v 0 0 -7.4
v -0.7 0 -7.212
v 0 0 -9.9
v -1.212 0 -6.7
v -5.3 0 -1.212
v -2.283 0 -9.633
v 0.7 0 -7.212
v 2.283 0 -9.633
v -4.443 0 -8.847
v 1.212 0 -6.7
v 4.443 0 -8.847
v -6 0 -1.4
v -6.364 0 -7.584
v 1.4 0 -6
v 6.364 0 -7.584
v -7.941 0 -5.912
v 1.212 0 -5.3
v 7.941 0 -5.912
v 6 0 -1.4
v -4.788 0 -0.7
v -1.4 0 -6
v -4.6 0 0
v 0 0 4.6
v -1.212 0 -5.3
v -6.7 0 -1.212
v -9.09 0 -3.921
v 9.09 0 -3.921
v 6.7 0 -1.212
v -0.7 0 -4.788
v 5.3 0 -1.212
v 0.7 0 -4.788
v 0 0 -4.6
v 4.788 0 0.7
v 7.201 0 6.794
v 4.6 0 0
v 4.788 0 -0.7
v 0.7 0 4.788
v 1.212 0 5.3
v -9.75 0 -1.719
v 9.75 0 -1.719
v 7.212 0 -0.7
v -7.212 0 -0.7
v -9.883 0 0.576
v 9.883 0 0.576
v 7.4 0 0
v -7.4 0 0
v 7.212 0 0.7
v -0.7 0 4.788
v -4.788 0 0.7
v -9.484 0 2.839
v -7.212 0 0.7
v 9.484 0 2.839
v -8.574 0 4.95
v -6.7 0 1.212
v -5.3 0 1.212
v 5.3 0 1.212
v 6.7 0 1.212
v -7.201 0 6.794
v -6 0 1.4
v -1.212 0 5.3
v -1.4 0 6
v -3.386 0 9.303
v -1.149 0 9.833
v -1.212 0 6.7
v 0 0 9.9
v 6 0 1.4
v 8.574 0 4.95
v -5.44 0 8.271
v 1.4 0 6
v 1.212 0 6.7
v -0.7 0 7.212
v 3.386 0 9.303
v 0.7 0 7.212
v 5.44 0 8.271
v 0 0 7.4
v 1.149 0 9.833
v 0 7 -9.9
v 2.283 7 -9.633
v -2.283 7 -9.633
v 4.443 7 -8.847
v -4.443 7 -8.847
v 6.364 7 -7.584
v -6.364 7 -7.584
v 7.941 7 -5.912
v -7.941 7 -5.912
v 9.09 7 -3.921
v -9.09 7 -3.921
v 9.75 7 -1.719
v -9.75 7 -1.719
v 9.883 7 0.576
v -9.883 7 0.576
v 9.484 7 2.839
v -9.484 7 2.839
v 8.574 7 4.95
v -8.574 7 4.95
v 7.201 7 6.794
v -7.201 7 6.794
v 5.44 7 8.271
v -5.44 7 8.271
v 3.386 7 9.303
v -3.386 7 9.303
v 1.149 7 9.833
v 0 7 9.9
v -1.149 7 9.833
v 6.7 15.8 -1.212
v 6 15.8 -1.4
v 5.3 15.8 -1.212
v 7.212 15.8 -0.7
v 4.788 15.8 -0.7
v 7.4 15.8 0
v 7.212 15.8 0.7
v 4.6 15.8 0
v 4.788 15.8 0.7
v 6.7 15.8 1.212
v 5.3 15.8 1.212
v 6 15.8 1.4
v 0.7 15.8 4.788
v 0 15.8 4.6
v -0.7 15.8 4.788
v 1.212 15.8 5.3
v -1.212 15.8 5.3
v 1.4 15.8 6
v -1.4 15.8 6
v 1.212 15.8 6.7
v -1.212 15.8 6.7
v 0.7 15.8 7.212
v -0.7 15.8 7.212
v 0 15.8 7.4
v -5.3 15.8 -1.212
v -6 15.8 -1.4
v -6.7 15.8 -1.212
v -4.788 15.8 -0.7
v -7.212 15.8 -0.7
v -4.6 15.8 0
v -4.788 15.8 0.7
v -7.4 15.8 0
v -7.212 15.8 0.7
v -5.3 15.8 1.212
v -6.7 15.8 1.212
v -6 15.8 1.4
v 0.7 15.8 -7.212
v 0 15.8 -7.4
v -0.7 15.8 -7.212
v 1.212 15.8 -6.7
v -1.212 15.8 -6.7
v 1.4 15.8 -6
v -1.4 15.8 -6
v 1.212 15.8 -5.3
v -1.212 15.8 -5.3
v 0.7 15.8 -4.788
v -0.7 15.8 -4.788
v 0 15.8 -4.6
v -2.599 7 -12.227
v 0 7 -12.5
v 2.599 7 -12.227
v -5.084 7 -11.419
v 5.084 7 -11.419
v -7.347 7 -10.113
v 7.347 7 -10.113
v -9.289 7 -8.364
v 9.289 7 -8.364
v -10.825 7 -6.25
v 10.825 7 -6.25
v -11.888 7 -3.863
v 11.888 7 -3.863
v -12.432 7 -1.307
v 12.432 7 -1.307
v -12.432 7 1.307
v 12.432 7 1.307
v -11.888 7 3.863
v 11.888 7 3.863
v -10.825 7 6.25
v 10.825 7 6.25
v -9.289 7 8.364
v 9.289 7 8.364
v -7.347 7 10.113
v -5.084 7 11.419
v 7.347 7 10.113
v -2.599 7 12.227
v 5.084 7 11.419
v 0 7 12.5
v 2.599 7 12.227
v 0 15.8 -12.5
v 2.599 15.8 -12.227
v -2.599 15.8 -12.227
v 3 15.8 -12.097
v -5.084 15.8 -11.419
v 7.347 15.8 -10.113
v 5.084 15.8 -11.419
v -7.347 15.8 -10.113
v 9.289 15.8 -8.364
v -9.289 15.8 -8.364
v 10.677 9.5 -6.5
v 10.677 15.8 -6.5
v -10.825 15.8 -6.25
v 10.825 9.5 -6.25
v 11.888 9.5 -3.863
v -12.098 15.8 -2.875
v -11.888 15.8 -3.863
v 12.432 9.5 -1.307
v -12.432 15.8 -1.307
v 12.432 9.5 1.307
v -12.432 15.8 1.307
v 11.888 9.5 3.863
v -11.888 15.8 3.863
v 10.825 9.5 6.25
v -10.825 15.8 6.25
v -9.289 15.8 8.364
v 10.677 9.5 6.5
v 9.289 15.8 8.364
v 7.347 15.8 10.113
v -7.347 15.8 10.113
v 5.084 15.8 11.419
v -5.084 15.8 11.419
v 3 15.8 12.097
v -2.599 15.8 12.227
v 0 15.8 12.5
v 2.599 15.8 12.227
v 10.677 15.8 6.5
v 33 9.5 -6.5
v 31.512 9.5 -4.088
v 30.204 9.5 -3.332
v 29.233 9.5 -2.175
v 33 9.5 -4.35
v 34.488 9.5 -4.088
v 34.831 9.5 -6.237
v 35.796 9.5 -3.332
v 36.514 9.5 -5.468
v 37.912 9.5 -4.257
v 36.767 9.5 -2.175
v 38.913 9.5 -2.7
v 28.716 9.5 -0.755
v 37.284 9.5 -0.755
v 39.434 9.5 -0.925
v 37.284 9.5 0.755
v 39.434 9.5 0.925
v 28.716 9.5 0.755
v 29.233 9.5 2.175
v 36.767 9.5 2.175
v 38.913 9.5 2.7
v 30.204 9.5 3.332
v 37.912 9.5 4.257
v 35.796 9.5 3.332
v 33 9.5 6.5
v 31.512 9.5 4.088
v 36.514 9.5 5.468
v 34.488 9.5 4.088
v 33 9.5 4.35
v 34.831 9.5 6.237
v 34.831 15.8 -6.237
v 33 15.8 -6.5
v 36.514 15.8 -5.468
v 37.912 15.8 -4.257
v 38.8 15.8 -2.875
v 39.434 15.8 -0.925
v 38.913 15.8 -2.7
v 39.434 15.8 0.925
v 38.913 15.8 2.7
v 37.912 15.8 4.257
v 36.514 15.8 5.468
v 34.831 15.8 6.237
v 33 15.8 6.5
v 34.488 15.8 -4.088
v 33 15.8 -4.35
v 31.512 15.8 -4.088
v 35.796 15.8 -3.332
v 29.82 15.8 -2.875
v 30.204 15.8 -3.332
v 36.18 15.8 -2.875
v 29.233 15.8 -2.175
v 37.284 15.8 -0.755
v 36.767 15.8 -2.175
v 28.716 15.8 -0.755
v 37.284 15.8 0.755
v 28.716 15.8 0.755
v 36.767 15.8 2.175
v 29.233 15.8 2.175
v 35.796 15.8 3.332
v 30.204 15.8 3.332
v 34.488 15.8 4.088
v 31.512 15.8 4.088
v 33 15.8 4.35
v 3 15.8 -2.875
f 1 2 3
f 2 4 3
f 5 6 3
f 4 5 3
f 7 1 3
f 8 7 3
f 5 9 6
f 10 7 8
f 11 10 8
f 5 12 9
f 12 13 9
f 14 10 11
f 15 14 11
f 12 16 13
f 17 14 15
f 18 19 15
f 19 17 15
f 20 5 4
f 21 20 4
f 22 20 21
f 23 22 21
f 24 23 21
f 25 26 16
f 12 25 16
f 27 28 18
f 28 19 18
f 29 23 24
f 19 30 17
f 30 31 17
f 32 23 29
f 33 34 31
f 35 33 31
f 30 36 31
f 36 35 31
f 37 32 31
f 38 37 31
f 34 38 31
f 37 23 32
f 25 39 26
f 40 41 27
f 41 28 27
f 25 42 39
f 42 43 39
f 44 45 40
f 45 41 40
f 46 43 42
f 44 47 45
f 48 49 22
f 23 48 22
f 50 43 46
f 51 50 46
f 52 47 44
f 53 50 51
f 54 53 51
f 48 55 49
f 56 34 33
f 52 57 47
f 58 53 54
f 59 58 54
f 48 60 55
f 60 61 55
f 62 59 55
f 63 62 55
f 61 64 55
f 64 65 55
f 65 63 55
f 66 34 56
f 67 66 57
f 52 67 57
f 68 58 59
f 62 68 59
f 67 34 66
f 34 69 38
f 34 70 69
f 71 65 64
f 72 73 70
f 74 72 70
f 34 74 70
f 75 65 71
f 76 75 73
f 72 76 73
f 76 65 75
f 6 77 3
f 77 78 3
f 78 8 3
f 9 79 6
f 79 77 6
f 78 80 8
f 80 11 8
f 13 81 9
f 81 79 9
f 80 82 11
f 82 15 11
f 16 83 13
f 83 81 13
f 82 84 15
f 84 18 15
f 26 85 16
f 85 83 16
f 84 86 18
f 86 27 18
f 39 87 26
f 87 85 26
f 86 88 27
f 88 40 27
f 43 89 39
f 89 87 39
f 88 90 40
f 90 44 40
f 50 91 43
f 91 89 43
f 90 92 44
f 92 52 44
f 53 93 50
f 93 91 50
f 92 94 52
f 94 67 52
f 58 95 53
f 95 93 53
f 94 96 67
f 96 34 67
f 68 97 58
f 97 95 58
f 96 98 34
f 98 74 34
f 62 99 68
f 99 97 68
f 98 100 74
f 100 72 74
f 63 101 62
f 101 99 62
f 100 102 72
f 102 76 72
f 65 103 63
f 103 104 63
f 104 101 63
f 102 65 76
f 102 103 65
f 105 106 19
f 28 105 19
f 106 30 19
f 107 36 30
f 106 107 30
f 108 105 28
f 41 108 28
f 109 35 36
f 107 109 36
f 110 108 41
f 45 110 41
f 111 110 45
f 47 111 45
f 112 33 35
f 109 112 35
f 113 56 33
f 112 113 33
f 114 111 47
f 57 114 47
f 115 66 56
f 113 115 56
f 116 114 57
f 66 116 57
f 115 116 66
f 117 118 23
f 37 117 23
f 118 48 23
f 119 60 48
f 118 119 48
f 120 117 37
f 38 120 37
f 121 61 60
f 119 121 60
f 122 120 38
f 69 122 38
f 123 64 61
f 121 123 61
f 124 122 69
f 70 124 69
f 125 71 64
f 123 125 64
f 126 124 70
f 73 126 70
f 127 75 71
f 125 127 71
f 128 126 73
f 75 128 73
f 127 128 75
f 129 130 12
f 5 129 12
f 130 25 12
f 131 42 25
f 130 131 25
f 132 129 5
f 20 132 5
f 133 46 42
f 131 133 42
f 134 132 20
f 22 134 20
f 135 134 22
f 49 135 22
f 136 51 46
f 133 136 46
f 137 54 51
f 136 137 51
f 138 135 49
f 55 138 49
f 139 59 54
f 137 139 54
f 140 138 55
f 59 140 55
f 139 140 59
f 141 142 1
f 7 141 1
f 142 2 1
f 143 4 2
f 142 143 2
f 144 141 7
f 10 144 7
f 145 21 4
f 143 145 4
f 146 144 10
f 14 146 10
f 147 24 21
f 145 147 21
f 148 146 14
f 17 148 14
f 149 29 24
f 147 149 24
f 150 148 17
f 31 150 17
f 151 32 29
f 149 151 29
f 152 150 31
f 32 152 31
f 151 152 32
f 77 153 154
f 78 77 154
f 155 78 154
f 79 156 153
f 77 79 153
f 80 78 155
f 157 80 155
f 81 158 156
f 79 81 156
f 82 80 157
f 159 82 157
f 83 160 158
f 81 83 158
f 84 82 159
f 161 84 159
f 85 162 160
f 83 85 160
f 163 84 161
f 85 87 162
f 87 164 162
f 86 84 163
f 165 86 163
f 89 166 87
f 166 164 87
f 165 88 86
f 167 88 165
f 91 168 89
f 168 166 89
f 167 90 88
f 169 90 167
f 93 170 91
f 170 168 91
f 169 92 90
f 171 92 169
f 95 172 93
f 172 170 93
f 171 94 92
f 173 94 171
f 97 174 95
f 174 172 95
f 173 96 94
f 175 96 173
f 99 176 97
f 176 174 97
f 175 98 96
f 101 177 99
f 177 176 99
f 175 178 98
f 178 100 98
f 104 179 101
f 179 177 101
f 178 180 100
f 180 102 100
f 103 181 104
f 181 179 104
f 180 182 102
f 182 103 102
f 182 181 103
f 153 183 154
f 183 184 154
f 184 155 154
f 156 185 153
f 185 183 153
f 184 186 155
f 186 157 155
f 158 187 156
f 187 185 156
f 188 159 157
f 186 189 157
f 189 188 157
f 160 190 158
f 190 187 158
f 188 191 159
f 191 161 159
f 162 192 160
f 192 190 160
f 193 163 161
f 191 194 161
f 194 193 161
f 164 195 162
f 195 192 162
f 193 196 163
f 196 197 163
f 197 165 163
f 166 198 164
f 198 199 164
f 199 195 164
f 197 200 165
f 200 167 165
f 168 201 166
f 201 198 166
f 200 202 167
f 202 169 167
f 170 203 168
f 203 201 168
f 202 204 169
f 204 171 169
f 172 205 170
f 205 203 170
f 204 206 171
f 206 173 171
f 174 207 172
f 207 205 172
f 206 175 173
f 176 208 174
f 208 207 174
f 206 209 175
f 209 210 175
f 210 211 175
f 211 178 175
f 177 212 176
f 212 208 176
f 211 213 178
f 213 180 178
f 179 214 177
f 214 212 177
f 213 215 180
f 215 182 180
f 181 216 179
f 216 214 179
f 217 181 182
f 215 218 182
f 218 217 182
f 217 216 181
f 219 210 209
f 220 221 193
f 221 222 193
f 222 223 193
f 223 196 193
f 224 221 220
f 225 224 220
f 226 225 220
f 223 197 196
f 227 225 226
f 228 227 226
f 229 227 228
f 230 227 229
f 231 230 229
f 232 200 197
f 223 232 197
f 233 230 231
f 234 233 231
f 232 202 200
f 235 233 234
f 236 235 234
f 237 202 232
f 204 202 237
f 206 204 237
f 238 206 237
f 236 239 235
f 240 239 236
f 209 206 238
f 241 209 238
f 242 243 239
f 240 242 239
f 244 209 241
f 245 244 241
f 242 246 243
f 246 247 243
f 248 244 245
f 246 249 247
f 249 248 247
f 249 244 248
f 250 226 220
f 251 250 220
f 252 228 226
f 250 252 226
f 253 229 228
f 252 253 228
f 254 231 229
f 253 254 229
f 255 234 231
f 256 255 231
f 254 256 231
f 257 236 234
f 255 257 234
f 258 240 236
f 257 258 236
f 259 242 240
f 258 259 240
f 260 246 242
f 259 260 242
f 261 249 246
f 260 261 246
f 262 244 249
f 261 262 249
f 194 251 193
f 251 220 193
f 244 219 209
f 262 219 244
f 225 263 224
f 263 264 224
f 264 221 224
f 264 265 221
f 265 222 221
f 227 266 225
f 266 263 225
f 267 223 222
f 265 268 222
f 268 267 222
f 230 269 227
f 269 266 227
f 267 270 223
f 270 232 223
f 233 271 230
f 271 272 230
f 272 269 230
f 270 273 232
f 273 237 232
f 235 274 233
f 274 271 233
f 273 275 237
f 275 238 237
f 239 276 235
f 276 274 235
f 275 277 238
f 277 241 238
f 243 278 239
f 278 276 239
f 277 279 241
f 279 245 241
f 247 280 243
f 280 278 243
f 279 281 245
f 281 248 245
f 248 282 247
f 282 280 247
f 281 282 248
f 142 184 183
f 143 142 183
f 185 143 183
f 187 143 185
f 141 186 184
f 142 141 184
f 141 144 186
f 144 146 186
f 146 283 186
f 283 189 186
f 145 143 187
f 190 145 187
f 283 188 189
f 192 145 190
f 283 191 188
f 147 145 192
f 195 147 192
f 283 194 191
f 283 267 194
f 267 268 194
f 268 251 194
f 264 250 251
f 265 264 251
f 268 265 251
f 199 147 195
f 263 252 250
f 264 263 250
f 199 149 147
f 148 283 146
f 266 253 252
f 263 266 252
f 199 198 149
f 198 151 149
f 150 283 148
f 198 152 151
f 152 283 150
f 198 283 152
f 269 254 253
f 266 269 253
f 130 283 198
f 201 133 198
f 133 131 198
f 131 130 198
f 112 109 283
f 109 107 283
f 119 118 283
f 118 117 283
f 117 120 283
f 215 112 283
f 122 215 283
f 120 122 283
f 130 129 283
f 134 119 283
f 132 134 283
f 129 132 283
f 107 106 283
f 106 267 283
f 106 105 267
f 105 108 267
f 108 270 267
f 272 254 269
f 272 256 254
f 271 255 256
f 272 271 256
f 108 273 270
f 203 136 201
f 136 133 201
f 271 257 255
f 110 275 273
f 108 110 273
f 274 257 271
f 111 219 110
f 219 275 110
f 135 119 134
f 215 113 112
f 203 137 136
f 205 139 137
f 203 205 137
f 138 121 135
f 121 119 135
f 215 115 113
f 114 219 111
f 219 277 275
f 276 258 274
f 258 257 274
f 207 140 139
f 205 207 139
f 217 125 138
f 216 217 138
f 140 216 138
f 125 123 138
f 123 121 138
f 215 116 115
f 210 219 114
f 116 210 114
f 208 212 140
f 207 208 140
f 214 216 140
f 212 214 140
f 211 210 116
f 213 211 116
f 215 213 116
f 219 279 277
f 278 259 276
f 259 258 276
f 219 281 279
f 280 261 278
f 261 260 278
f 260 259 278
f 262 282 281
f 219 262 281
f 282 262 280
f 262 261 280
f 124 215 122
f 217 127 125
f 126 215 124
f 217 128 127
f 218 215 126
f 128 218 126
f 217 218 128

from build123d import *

# Parameters (mm, degrees)
SKETCH_1_R      = 9.9
SKETCH_1_R_2    = 1.4
EXTRUDE_1_DEPTH = 7
SKETCH_2_R      = 12.5
SKETCH_2_R_2    = 1.4
EXTRUDE_2_DEPTH = 2.5
SKETCH_3_R      = 1.4
SKETCH_3_R_2    = 4.35
EXTRUDE_3_DEPTH = 6.3


with BuildPart() as part:
    # 草图1 → 凸台-拉伸1 (new body)
    with BuildSketch(Plane(origin=(0, 0, 0), x_dir=(1, 0, 0), z_dir=(0, 1, 0))):
        with Locations(Location((0, 0, 0), (0, 0, 270))):
            Circle(SKETCH_1_R)
        with Locations(Location((6, 0, 0), (0, 0, 270))):
            Circle(SKETCH_1_R_2, mode=Mode.SUBTRACT)
        with Locations(Location((0, -6, 0), (0, 0, 270))):
            Circle(SKETCH_1_R_2, mode=Mode.SUBTRACT)
        with Locations(Location((-6, 0, 0), (0, 0, 270))):
            Circle(SKETCH_1_R_2, mode=Mode.SUBTRACT)
        with Locations(Location((0, 6, 0), (0, 0, 270))):
            Circle(SKETCH_1_R_2, mode=Mode.SUBTRACT)
    extrude(amount=EXTRUDE_1_DEPTH)

    # 草图2 → 凸台-拉伸2 (add)
    with BuildSketch(Plane(origin=(0, 7, 0), x_dir=(1, 0, 0), z_dir=(0, 1, 0))):
        with Locations(Location((0, 0, 0), (0, 0, 270))):
            Circle(SKETCH_2_R)
        with Locations(Location((-6, 0, 0), (0, 0, 270))):
            Circle(SKETCH_2_R_2, mode=Mode.SUBTRACT)
        with Locations(Location((0, -6, 0), (0, 0, 270))):
            Circle(SKETCH_2_R_2, mode=Mode.SUBTRACT)
        with Locations(Location((6, 0, 0), (0, 0, 270))):
            Circle(SKETCH_2_R_2, mode=Mode.SUBTRACT)
        with Locations(Location((0, 6, 0), (0, 0, 270))):
            Circle(SKETCH_2_R_2, mode=Mode.SUBTRACT)
    extrude(amount=EXTRUDE_2_DEPTH)

    # 草图3 → 凸台-拉伸3 (add)
    with BuildSketch(Plane(origin=(0, 9.5, 0), x_dir=(1, 0, 0), z_dir=(0, 1, 0))):
        with BuildLine():
            Line((33, 6.5), (10.677078252, 6.5))
            ThreePointArc((10.677078252, 6.5), (-12.5, 0), (10.677078252, -6.5))
            Line((10.677078252, -6.5), (33, -6.5))
            ThreePointArc((33, -6.5), (39.5, 0), (33, 6.5))
        make_face()
        with Locations(Location((6, 0, 0), (0, 0, 270))):
            Circle(SKETCH_3_R, mode=Mode.SUBTRACT)
        with Locations(Location((-6, 0, 0), (0, 0, 270))):
            Circle(SKETCH_3_R, mode=Mode.SUBTRACT)
        with Locations(Location((33, 0, 0), (0, 0, 270))):
            Circle(SKETCH_3_R_2, mode=Mode.SUBTRACT)
        with Locations(Location((0, 6, 0), (0, 0, 270))):
            Circle(SKETCH_3_R, mode=Mode.SUBTRACT)
        with Locations(Location((0, -6, 0), (0, 0, 270))):
            Circle(SKETCH_3_R, mode=Mode.SUBTRACT)
    extrude(amount=EXTRUDE_3_DEPTH)


solid = part.part
